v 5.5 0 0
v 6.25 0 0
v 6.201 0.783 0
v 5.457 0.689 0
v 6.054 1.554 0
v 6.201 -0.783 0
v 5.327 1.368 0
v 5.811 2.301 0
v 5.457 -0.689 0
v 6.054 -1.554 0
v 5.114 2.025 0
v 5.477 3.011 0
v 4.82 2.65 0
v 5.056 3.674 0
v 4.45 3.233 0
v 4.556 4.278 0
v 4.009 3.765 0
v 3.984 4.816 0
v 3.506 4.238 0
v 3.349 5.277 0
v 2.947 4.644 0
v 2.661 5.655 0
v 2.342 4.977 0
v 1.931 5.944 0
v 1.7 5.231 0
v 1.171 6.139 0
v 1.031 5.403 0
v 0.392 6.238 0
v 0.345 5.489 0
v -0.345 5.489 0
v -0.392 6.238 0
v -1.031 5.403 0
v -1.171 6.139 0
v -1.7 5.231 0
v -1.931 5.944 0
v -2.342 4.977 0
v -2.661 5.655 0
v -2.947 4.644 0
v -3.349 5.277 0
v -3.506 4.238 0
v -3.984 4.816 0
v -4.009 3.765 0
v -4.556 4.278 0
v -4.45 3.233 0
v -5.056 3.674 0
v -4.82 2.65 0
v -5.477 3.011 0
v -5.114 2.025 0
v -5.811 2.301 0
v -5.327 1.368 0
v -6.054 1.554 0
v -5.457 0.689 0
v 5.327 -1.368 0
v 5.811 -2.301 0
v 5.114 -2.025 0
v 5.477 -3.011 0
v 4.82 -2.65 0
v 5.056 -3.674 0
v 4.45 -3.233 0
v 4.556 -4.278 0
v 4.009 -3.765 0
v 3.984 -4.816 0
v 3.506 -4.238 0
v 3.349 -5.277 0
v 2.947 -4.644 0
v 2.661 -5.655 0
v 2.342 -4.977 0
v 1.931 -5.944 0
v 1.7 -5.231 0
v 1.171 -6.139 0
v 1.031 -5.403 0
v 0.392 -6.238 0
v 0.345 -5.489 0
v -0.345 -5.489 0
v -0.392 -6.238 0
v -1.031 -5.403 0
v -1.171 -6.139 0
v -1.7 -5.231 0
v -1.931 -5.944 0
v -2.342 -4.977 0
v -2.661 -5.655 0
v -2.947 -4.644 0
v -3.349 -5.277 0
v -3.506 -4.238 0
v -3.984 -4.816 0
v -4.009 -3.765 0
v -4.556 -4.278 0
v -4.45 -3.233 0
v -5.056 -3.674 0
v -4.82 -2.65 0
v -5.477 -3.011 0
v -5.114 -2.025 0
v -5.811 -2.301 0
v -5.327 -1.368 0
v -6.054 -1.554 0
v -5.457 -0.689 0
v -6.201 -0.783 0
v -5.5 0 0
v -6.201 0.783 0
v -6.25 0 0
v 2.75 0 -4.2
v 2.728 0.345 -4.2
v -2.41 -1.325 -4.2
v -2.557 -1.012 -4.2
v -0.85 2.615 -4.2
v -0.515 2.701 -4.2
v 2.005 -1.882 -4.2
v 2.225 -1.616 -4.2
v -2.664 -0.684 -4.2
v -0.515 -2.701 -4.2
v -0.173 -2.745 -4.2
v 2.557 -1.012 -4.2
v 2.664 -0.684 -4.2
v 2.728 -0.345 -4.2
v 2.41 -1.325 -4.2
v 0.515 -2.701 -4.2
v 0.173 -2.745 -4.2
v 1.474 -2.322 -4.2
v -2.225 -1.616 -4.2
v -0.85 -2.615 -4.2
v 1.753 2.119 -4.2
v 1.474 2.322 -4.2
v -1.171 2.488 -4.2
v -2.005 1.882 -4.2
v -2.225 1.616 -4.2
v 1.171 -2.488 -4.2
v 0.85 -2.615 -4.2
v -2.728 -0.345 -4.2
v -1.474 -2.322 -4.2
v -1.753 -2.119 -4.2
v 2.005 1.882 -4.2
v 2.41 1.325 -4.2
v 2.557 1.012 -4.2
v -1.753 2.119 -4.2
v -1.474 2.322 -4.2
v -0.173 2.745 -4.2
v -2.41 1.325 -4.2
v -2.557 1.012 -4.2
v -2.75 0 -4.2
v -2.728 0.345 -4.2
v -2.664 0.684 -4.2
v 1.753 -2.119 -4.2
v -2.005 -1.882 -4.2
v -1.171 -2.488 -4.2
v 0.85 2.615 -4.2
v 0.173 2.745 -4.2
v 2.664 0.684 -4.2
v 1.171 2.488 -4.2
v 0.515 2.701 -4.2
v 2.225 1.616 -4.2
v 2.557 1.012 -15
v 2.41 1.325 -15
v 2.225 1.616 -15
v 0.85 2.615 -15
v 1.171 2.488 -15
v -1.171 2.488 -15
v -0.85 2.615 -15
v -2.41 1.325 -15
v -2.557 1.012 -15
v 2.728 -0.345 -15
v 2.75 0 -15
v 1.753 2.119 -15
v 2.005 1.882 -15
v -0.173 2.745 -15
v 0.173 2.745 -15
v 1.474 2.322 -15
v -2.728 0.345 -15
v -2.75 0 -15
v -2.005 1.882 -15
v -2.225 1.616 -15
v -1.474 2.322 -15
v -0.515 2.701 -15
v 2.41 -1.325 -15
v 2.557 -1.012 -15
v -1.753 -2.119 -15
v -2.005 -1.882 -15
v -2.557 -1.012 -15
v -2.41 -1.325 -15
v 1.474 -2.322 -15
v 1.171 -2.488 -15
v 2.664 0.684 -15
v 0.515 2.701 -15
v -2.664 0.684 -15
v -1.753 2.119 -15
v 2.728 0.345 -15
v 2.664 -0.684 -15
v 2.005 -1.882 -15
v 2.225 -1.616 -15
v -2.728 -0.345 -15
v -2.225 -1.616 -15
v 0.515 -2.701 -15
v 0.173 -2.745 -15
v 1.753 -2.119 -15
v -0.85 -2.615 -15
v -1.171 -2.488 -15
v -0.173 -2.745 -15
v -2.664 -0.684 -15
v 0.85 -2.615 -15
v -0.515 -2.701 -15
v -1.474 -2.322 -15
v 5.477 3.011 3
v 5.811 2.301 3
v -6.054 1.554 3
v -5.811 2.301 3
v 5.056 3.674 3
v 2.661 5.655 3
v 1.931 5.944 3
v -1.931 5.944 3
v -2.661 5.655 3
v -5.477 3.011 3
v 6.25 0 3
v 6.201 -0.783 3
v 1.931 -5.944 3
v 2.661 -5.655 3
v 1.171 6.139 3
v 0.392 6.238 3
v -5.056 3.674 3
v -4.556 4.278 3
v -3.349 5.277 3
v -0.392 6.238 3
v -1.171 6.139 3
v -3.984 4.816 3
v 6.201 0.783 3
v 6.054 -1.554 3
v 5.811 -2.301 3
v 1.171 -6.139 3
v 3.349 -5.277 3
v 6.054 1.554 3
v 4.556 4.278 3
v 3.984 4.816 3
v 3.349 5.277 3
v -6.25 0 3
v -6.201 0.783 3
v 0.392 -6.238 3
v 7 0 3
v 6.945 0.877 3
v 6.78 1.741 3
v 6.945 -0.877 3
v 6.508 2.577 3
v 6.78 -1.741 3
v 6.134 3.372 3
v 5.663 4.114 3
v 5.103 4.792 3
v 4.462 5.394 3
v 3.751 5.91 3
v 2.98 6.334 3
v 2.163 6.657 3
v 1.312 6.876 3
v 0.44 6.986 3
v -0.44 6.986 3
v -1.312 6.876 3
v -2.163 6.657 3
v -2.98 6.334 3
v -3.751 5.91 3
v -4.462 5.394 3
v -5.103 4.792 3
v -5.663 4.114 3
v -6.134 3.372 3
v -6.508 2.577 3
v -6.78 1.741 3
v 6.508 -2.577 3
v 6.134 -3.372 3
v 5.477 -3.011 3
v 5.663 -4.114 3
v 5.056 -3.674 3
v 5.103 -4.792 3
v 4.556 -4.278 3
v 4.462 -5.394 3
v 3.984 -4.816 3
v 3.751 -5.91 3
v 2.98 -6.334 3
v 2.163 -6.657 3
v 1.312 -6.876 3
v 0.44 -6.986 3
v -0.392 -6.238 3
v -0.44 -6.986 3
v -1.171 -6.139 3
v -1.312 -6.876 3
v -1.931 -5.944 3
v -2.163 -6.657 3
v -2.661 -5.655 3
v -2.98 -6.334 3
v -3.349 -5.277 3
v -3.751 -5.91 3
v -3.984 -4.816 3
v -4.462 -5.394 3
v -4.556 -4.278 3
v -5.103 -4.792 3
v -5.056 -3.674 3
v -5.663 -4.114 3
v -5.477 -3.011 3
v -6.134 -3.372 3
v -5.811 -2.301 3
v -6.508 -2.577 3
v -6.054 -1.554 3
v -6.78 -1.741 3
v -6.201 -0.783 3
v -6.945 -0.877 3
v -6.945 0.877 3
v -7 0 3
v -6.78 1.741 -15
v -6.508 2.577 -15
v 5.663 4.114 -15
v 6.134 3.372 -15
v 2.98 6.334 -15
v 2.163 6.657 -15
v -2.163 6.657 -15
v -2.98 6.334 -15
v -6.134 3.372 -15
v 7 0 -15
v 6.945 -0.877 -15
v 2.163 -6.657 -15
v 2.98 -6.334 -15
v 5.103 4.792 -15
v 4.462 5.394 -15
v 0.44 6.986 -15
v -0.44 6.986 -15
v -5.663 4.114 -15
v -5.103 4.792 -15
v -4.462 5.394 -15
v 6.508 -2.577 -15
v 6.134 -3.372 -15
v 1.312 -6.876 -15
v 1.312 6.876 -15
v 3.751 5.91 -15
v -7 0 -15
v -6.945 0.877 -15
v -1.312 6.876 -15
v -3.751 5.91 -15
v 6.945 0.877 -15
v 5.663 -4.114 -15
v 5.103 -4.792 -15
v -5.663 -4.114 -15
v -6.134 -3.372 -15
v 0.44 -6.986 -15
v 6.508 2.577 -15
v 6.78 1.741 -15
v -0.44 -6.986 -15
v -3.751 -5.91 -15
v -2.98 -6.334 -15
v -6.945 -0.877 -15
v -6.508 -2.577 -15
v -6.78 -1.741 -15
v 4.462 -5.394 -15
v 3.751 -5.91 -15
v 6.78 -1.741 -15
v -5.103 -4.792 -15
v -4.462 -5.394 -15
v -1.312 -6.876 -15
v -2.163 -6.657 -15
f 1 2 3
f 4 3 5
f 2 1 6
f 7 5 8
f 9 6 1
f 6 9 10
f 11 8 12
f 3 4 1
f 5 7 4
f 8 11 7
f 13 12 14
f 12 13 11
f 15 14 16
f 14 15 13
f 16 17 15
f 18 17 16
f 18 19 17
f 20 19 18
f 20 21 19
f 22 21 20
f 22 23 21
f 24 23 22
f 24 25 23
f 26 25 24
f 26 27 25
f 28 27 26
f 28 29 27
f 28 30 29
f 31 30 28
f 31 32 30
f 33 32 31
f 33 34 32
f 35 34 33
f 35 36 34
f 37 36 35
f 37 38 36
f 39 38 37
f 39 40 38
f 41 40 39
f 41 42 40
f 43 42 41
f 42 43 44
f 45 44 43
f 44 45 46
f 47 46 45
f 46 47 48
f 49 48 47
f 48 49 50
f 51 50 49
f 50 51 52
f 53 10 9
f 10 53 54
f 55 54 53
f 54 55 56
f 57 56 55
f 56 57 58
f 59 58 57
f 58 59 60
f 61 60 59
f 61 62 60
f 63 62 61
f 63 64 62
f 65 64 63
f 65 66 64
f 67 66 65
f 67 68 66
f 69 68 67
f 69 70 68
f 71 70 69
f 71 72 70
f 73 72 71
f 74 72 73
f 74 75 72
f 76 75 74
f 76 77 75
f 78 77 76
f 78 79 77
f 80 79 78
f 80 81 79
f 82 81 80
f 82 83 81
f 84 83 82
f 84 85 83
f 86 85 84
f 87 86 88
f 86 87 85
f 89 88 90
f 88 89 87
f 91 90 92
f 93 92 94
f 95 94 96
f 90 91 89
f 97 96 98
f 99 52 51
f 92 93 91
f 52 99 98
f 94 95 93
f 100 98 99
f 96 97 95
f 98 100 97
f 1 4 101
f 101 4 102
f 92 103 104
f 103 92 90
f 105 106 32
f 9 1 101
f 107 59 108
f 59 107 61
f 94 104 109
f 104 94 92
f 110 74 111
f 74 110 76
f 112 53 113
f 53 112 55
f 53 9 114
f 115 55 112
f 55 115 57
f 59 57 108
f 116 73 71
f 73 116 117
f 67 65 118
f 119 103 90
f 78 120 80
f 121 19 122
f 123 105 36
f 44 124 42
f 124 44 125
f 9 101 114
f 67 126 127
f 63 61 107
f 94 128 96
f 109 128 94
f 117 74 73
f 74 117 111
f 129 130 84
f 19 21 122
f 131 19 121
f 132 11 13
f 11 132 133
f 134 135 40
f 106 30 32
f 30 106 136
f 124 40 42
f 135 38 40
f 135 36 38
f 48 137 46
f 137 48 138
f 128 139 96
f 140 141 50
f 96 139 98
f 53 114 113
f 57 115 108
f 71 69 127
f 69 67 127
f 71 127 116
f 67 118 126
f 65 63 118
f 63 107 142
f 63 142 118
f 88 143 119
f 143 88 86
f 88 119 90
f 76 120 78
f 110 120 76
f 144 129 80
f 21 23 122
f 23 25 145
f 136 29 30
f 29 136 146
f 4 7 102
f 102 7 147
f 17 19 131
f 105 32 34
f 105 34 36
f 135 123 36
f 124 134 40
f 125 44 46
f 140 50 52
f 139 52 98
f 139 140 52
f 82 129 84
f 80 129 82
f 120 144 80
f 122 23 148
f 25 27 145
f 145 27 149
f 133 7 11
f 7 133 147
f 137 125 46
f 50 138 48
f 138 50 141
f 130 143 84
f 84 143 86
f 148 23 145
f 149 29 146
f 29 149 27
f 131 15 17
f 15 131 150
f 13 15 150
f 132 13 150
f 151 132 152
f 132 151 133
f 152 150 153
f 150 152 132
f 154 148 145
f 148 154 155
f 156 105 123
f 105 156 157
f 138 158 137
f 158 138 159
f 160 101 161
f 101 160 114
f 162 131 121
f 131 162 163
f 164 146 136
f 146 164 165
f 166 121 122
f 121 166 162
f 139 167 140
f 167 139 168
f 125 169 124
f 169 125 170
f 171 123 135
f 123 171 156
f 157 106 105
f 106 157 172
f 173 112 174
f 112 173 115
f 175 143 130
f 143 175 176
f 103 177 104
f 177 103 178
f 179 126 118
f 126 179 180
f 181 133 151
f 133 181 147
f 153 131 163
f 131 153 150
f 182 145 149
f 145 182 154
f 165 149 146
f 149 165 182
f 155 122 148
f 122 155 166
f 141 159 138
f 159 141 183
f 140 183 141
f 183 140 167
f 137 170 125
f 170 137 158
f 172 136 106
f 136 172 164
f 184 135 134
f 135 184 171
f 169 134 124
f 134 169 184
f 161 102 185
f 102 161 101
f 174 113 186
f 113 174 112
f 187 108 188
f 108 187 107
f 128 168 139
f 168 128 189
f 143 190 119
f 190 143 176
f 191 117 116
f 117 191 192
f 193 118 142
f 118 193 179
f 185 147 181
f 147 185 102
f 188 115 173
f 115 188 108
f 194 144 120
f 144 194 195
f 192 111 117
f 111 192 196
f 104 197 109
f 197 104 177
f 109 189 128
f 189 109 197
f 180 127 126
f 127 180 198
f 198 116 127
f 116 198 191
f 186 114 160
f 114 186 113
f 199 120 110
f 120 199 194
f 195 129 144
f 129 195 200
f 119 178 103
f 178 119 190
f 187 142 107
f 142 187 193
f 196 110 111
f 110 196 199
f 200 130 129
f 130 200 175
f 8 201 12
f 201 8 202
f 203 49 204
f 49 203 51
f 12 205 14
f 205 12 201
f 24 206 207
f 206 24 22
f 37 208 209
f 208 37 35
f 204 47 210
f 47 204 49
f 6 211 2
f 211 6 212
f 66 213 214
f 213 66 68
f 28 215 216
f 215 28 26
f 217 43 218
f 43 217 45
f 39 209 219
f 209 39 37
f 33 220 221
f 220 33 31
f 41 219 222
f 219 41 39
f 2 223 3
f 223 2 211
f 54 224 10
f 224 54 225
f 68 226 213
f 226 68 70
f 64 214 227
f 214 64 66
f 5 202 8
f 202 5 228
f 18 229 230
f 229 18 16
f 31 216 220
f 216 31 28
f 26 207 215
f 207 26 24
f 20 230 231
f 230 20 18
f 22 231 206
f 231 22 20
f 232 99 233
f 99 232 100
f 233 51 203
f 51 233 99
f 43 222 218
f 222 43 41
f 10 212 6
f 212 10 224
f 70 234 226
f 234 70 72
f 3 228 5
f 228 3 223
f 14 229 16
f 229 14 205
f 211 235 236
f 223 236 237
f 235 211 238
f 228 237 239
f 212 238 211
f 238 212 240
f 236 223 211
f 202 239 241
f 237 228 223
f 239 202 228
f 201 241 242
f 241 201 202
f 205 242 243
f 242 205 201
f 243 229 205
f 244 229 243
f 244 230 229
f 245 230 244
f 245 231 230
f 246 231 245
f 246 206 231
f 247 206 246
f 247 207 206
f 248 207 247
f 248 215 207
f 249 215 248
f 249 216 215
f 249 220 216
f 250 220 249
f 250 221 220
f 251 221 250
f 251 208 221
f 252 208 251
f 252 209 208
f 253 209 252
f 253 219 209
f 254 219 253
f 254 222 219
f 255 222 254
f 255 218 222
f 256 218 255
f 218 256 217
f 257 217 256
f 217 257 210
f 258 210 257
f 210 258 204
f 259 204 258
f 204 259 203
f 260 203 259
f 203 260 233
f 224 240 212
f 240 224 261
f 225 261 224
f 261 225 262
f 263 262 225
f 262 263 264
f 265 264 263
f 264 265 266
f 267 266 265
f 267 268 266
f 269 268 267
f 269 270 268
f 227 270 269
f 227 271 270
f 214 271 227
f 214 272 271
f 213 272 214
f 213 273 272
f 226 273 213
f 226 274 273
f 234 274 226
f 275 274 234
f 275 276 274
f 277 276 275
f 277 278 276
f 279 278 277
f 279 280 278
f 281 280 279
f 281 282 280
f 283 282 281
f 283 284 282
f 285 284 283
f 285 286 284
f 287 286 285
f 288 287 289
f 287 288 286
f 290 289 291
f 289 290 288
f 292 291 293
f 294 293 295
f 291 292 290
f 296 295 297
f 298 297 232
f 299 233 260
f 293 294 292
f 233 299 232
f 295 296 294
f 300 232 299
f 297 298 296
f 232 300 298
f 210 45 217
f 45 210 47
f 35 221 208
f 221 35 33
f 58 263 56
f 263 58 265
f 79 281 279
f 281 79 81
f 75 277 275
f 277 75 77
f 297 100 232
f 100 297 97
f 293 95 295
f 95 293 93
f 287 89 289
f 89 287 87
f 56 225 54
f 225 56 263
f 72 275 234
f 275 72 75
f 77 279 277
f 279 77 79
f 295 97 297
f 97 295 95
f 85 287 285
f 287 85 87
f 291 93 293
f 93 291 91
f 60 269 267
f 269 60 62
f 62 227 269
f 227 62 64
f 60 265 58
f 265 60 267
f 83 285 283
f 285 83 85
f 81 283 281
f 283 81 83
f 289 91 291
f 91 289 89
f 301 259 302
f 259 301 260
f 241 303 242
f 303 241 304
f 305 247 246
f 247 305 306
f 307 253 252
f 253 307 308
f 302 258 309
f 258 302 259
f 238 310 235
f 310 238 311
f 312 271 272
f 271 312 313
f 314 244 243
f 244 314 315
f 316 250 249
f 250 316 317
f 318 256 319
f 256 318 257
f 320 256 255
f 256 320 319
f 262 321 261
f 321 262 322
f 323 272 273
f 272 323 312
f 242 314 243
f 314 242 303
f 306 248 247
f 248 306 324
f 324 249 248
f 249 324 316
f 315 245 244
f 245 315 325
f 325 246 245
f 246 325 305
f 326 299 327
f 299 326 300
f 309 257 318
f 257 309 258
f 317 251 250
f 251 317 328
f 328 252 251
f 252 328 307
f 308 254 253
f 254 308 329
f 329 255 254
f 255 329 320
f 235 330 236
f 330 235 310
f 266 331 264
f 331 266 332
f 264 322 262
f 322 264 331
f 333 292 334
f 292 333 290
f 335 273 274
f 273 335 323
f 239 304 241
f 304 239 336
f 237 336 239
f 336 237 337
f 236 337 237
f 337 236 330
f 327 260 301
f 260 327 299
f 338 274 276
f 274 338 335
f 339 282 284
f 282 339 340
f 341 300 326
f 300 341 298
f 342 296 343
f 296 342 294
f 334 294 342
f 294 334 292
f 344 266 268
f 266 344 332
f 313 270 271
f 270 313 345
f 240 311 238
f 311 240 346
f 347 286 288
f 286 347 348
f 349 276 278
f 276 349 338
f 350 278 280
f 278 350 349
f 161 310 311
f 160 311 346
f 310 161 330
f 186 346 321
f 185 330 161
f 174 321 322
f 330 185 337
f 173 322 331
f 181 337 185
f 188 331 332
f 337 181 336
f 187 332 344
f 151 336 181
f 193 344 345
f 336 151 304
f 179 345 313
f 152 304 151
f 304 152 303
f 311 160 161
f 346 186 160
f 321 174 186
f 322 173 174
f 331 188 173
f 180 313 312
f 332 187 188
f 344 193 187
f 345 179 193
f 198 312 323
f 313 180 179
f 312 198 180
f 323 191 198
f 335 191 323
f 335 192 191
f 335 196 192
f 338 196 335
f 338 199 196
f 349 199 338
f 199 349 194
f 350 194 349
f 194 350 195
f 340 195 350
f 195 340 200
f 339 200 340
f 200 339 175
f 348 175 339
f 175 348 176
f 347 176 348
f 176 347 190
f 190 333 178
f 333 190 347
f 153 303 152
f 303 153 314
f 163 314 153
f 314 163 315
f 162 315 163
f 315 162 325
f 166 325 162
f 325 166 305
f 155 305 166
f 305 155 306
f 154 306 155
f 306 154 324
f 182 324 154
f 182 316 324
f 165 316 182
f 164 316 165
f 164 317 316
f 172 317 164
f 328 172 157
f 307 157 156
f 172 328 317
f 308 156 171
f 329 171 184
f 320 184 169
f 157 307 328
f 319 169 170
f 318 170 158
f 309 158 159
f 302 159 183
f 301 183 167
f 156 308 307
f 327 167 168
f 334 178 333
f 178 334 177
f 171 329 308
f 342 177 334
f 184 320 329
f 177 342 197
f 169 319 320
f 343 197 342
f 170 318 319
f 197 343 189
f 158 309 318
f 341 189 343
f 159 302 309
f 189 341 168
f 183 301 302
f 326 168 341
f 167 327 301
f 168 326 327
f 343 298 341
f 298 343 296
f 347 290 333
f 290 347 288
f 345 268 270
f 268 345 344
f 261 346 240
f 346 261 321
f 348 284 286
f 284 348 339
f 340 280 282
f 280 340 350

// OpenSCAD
$fn = 50;

difference() {
	union() {
		translate(v = [0, 0, -15.0]) {
			cylinder(h = 18, r = 7.0);
		}
	}
	union() {
		translate(v = [0, 0, 0]) {
			rotate(a = [0, 0, 0]) {
				difference() {
					union() {
						translate(v = [0, 0, -18.0]) {
							cylinder(h = 18, r = 2.25);
						}
						translate(v = [0, 0, -4.2]) {
							cylinder(h = 4.2, r1 = 2.75, r2 = 5.5);
						}
						translate(v = [0, 0, -18.0]) {
							cylinder(h = 18, r = 2.75);
						}
						translate(v = [0, 0, -18.0]) {
							cylinder(h = 18, r = 2.25);
						}
					}
					union();
				}
			}
		}
		#cylinder(h = 3, r = 6.25);
	}
}
